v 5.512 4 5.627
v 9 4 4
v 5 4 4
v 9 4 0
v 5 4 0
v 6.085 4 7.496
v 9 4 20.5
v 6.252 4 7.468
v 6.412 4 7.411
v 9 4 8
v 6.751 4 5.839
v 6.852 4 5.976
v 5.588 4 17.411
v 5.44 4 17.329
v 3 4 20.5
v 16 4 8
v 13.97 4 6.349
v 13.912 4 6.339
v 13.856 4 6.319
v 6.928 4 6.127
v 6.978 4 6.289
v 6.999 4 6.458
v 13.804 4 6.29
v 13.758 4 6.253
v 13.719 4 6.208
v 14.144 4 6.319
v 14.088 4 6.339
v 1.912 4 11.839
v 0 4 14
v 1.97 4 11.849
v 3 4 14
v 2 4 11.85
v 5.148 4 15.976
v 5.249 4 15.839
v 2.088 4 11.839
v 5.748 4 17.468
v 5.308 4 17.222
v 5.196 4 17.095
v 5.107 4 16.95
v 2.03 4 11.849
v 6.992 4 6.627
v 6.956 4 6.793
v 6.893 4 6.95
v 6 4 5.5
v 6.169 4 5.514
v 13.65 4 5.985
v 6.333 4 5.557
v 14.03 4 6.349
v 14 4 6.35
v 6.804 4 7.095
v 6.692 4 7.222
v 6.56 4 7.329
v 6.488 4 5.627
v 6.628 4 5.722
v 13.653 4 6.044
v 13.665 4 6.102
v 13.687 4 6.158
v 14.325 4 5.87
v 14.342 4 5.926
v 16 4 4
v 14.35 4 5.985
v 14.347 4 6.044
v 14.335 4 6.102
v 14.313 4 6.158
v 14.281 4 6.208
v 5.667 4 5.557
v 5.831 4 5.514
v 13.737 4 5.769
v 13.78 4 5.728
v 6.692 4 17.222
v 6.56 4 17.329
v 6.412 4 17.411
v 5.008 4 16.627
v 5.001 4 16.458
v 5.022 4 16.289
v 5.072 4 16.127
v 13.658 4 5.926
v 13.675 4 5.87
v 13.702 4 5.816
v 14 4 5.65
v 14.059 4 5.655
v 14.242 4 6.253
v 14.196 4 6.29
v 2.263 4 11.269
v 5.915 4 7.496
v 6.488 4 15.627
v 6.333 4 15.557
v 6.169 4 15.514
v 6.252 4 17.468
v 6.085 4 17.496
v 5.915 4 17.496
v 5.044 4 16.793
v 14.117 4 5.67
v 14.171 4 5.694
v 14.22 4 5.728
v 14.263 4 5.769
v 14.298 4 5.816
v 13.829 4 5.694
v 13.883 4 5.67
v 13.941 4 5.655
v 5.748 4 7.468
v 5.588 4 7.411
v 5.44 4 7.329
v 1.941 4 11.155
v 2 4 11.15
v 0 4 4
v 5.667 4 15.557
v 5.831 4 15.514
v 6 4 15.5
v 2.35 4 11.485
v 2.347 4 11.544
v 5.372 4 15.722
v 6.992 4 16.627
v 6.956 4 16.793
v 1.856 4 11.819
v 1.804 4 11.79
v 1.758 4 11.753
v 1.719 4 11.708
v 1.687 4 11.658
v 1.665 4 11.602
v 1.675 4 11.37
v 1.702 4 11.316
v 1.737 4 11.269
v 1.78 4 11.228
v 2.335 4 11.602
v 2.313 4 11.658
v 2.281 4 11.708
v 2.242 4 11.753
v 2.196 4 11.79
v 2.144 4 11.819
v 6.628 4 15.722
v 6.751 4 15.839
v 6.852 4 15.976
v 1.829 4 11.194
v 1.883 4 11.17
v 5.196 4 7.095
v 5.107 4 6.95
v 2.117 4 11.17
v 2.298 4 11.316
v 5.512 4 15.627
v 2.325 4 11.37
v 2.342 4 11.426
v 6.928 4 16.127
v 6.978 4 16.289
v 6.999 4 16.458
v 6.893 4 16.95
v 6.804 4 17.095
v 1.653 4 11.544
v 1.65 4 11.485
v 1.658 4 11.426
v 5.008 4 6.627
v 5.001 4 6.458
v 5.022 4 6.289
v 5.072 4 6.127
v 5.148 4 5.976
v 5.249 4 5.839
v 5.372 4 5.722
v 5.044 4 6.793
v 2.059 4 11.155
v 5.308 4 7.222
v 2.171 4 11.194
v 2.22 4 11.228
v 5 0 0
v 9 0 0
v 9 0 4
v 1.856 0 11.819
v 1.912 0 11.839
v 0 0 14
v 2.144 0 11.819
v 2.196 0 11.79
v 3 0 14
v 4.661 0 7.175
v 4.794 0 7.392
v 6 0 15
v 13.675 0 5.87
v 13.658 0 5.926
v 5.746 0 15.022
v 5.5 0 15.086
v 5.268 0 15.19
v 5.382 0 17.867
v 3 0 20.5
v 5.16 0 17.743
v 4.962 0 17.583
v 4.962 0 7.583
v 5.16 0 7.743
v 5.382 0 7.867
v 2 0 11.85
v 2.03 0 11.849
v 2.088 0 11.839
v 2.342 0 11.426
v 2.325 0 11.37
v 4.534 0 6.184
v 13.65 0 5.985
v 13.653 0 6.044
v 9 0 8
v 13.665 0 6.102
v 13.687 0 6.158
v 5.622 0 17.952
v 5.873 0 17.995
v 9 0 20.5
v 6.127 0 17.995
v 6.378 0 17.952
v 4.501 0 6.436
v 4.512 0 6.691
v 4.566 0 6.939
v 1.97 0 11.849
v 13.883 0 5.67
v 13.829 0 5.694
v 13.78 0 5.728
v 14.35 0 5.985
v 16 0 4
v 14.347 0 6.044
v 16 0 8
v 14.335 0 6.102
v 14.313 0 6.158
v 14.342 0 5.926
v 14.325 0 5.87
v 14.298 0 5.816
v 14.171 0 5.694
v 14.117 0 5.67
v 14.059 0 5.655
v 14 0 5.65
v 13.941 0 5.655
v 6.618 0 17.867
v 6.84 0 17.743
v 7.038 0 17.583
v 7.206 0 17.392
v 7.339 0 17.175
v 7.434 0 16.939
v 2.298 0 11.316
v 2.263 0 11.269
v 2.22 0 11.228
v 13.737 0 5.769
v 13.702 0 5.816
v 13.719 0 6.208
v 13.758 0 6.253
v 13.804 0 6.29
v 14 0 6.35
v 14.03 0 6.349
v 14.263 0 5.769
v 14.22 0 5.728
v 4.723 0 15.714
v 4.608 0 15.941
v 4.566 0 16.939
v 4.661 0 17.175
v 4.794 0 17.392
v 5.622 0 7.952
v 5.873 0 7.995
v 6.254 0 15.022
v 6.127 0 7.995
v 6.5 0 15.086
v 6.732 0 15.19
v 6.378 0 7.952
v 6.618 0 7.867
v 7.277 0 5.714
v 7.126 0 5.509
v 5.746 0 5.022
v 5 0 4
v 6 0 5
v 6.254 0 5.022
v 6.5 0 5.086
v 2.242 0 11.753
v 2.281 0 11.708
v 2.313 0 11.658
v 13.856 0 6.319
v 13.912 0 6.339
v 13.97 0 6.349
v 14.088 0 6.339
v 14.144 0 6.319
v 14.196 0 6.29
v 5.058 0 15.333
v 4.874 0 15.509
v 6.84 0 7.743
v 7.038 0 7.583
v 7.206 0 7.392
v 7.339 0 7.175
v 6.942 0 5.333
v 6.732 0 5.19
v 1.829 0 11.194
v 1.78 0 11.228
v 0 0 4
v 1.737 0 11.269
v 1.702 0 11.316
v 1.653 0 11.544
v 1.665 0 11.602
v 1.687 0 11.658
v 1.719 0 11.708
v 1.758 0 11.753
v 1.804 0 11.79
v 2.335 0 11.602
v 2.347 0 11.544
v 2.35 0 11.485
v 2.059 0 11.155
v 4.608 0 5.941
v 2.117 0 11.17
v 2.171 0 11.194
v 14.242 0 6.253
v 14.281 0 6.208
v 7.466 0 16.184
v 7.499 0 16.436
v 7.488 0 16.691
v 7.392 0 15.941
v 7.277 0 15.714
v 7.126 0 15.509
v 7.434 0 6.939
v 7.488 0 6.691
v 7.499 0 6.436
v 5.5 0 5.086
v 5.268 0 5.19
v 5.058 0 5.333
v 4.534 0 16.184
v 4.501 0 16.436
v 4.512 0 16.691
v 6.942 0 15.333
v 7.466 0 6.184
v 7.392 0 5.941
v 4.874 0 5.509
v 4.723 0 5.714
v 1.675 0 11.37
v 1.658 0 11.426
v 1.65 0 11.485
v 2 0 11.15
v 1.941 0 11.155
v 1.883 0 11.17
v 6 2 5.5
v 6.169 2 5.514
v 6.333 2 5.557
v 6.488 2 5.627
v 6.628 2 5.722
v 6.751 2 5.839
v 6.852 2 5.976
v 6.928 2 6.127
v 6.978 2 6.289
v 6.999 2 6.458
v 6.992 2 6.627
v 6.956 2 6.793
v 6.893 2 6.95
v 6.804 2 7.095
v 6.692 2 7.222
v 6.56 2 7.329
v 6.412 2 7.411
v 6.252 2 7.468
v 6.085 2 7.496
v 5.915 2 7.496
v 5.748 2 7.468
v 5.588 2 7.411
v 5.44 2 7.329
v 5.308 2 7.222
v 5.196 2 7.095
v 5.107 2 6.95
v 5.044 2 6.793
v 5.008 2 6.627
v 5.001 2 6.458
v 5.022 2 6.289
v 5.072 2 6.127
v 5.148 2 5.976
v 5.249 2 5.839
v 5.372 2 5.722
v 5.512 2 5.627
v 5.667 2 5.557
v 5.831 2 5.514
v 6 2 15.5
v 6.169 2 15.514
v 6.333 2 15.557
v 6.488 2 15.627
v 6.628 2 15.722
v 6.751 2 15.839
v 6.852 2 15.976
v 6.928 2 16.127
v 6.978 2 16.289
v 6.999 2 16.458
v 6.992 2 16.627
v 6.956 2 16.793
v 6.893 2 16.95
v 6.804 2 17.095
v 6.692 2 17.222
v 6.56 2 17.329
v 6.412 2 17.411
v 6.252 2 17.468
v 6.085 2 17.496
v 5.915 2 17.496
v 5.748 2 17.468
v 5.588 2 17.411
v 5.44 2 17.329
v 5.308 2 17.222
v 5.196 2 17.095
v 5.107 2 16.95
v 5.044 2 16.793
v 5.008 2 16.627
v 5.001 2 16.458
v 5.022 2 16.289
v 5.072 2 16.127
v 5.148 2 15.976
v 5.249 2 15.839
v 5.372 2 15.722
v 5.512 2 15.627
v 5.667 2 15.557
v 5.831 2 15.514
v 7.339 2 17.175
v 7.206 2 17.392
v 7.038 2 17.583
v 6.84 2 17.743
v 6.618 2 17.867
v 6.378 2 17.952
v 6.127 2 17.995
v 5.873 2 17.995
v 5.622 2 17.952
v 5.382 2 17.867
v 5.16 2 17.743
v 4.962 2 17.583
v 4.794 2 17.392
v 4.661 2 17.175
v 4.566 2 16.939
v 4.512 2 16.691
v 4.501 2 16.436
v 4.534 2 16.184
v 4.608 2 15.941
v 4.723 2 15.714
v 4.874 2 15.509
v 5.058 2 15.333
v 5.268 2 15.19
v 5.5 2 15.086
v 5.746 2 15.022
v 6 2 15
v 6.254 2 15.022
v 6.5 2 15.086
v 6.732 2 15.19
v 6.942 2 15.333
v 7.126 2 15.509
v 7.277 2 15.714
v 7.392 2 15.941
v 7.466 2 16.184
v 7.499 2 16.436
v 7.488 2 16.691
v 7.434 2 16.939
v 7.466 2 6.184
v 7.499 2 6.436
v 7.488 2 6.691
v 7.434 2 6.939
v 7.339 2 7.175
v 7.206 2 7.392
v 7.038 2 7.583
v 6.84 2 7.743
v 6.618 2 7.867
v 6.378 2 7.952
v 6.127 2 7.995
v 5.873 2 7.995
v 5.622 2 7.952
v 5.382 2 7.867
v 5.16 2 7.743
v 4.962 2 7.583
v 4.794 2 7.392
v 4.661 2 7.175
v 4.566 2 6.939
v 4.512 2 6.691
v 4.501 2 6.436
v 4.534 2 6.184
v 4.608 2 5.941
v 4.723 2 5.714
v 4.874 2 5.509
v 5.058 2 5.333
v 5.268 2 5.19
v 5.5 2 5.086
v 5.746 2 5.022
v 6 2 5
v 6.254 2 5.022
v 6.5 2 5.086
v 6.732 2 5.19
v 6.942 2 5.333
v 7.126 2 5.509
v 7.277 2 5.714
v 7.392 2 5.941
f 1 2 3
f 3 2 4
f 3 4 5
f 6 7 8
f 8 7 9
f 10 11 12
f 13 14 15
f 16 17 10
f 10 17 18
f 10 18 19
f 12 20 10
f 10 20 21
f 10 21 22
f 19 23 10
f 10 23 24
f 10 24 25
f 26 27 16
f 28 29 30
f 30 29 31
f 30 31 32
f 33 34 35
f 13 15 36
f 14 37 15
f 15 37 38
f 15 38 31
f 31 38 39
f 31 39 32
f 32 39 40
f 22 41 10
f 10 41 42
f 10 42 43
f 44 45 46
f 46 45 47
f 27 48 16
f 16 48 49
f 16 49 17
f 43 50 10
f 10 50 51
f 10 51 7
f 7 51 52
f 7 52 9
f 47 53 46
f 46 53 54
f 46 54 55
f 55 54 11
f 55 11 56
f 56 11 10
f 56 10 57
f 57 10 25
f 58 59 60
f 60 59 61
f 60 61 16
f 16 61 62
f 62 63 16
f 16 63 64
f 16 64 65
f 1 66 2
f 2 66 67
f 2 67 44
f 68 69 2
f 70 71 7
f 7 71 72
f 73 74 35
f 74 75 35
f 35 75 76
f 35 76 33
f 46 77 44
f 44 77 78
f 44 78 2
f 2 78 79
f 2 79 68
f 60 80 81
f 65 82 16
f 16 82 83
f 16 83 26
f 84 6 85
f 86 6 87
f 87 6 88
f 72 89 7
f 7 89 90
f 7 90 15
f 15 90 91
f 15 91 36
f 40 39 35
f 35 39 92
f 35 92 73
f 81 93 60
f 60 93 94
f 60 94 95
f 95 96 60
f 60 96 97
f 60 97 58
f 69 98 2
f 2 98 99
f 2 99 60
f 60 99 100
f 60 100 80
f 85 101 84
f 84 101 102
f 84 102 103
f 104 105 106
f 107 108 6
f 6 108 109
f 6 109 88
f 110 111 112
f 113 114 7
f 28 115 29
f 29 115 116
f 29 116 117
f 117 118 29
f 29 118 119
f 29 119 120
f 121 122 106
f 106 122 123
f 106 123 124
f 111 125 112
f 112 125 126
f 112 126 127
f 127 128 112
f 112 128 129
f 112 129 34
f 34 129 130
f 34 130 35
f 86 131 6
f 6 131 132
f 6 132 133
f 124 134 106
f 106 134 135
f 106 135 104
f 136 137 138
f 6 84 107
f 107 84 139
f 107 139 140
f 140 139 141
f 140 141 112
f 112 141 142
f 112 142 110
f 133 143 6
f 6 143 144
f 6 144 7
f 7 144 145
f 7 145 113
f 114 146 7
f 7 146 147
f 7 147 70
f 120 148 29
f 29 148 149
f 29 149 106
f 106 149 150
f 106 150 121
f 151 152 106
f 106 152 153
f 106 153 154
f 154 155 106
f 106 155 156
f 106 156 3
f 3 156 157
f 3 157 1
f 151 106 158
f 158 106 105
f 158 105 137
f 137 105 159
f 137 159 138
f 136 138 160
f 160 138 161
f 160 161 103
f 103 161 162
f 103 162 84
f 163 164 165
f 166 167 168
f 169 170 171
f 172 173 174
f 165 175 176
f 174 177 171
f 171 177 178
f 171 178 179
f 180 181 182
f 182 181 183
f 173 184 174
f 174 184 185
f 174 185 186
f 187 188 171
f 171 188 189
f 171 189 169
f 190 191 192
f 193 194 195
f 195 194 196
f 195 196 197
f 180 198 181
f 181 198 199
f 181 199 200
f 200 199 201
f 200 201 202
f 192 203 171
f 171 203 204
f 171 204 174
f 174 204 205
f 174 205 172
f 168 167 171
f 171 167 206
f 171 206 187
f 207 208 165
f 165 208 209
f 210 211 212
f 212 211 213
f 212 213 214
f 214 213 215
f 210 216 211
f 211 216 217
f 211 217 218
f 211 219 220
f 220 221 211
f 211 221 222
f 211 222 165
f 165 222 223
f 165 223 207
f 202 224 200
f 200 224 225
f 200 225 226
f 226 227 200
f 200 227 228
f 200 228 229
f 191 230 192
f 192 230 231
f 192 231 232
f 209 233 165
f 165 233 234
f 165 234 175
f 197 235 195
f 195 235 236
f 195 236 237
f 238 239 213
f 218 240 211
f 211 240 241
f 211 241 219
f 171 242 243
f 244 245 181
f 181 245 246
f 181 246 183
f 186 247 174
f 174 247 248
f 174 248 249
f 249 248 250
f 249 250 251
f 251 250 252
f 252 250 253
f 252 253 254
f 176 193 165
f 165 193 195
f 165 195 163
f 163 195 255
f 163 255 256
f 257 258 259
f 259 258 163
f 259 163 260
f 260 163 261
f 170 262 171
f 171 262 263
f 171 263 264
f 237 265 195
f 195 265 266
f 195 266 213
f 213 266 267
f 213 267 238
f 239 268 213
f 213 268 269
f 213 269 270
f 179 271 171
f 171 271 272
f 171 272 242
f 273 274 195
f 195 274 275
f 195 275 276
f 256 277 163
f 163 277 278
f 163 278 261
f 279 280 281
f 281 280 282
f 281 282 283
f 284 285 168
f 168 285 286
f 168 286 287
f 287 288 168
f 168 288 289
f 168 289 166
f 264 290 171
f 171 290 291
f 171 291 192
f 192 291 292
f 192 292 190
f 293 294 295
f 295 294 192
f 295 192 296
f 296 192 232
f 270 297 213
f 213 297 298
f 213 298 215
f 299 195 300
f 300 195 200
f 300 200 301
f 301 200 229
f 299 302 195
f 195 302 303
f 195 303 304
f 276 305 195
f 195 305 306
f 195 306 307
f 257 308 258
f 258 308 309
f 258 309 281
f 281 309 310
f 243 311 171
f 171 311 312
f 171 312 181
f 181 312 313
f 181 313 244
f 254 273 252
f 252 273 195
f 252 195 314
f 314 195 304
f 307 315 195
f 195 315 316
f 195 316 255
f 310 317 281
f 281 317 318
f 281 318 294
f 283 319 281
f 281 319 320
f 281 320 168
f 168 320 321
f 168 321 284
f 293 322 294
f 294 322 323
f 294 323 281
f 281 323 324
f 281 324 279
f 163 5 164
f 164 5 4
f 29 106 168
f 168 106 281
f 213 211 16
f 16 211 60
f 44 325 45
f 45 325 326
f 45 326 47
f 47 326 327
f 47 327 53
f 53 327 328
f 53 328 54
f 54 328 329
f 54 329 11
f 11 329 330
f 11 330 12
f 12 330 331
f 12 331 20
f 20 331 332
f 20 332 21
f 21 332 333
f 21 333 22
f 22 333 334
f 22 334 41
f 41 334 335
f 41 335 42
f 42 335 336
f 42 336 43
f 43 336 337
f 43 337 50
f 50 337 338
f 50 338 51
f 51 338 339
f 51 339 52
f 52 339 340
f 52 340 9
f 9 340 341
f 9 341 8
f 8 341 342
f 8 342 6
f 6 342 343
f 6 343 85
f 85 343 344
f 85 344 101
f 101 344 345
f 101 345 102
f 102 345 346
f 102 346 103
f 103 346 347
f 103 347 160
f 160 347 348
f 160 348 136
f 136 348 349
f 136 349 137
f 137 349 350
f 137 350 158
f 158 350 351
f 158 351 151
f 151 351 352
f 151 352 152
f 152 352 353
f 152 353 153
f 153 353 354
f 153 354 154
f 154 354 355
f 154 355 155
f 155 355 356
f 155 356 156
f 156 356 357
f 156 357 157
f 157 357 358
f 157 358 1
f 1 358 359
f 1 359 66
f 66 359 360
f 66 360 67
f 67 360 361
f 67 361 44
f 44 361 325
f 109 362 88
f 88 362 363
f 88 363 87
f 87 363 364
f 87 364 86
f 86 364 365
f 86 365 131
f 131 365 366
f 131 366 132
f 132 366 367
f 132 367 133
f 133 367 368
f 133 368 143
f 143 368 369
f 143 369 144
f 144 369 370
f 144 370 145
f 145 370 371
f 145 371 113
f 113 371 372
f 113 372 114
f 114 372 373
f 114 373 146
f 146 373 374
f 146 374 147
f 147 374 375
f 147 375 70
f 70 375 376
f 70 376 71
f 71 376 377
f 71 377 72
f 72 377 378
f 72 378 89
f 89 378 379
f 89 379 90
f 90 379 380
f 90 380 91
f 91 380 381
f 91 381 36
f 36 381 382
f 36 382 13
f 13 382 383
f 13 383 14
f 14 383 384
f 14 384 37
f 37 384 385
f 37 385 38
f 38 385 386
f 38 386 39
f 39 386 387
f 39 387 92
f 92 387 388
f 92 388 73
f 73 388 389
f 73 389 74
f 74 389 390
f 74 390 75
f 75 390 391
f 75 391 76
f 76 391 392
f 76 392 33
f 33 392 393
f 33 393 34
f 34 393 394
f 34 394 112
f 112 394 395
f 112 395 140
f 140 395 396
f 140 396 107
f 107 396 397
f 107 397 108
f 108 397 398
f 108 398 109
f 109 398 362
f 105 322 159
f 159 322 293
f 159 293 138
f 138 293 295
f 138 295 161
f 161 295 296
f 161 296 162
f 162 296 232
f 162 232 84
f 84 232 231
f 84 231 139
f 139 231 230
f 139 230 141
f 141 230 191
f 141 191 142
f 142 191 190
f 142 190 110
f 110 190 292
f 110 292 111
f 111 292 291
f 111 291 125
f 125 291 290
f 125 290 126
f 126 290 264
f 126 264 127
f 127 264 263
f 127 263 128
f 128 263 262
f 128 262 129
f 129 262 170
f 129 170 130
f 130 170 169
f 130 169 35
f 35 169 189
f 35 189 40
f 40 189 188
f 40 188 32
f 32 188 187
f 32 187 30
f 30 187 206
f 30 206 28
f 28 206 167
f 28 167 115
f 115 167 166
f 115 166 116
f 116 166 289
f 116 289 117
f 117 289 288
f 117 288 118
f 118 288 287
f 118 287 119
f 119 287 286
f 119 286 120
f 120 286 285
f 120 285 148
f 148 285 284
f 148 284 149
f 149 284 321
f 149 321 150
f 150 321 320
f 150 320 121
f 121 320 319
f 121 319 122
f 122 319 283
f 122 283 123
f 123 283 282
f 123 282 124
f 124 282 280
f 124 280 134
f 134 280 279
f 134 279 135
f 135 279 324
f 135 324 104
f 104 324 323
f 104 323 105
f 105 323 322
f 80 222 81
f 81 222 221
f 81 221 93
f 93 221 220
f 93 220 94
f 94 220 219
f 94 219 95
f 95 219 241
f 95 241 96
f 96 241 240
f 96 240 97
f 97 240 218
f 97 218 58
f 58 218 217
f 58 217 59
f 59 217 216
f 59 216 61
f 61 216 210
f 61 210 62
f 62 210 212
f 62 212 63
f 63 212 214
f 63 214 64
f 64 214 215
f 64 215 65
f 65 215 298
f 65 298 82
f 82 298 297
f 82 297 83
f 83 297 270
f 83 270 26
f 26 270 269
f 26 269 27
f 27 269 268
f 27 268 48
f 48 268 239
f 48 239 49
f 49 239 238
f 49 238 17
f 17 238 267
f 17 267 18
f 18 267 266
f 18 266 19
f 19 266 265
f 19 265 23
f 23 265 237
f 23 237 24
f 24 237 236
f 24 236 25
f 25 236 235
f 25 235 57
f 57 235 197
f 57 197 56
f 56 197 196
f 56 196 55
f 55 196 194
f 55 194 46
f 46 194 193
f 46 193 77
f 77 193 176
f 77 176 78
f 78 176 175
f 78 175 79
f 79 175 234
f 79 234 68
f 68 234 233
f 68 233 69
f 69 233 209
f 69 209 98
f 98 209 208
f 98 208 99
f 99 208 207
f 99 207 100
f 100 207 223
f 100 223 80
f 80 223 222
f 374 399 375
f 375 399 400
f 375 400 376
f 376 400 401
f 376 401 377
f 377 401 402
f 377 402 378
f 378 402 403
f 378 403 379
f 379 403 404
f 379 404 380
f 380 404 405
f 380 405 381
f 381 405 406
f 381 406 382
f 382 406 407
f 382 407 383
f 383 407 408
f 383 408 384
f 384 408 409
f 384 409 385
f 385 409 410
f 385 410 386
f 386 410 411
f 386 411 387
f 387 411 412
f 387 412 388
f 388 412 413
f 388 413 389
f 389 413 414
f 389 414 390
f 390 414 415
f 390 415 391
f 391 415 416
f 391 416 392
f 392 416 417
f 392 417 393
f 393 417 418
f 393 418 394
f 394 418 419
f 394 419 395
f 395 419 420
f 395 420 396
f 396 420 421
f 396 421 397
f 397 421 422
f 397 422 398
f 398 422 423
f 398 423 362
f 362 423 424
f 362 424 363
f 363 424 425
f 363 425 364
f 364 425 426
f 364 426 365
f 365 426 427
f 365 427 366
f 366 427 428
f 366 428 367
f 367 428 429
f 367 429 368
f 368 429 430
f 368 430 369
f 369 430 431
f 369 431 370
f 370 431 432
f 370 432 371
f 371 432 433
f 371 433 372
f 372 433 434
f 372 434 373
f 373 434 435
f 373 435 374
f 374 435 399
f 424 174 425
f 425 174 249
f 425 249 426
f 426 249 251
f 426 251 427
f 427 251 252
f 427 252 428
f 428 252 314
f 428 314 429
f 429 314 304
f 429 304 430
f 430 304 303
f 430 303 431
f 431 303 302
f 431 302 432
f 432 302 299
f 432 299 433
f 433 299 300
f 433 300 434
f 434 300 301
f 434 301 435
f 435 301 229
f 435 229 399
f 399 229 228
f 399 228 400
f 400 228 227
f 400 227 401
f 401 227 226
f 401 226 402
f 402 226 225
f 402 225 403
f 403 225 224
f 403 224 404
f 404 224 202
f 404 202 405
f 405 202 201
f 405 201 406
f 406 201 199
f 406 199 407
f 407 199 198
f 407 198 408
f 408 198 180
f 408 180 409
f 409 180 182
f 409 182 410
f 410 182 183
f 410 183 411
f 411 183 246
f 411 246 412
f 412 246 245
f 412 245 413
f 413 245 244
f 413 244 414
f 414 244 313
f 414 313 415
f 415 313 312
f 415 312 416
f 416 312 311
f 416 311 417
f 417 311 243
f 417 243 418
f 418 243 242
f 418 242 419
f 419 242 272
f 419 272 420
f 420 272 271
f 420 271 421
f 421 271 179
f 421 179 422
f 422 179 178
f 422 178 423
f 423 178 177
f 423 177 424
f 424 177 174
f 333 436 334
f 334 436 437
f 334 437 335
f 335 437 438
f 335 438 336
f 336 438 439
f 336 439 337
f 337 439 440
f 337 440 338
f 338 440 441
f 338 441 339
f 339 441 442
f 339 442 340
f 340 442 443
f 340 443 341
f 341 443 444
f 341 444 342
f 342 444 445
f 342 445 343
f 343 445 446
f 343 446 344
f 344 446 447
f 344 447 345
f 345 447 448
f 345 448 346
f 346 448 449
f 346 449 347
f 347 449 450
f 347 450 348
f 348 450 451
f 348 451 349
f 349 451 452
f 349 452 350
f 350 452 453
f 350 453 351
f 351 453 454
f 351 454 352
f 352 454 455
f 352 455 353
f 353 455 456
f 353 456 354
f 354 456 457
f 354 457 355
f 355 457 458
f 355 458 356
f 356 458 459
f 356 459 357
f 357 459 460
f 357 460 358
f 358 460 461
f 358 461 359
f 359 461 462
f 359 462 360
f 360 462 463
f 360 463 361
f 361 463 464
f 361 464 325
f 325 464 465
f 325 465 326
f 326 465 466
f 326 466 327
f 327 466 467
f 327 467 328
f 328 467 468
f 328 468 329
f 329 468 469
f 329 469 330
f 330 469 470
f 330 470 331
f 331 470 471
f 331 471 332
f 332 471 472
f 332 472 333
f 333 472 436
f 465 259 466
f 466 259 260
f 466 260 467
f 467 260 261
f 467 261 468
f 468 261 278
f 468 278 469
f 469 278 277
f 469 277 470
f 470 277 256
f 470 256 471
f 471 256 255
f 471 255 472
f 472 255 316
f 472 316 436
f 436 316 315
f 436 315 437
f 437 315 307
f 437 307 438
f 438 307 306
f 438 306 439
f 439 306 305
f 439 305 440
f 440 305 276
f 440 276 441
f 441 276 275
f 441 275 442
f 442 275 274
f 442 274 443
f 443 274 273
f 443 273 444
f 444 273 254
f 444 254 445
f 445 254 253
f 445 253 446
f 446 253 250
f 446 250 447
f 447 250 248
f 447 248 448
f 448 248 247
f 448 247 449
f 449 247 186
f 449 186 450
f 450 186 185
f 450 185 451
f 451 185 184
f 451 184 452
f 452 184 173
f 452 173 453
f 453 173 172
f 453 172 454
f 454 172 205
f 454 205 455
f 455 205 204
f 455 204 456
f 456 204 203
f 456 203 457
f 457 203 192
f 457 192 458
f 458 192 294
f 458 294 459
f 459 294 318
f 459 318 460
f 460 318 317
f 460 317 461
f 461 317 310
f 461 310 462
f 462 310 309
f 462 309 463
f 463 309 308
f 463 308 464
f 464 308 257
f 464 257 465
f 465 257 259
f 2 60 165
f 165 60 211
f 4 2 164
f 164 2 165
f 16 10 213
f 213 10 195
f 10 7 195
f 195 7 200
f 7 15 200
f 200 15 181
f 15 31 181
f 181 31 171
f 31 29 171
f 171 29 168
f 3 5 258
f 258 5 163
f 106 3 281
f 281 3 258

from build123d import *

# Parameters (mm, degrees)
SKETCH_1_W          = 16
SKETCH_1_H          = 23
SKETCH_1_R          = 0.35
EXTRUDE_1_DEPTH     = 4
SKETCH_2_R          = 1
CUT_EXTRUDE_1_DEPTH = 29.301943396
SKETCH_3_R          = 1.5
CUT_EXTRUDE_2_DEPTH = 2
SKETCH_4_W          = 6
SKETCH_4_H          = 2.5
SKETCH_4_W_2        = 7
SKETCH_4_H_2        = 4
SKETCH_4_W_3        = 5
CUT_EXTRUDE_3_DEPTH = 29.301943396


with BuildPart() as part:
    # 草图1 → 凸台-拉伸1 (new body)
    with BuildSketch(Plane(origin=(0, 0, 0), x_dir=(1, 0, 0), z_dir=(0, 1, 0))):
        with Locations((8, -11.5)):
            Rectangle(SKETCH_1_W, SKETCH_1_H)
        with Locations(Location((14, -6, 0), (0, 0, 270))):
            Circle(SKETCH_1_R, mode=Mode.SUBTRACT)
        with Locations(Location((2, -11.5, 0), (0, 0, 270))):
            Circle(SKETCH_1_R, mode=Mode.SUBTRACT)
    extrude(amount=EXTRUDE_1_DEPTH)

    # 草图2 → 切除-拉伸1 (cut, through all)
    with BuildSketch(Plane.XZ):
        with Locations(Location((6, 16.5, 0), (0, 0, 270))):
            Circle(SKETCH_2_R)
        with Locations(Location((6, 6.5, 0), (0, 0, 270))):
            Circle(SKETCH_2_R)
    extrude(amount=-CUT_EXTRUDE_1_DEPTH, mode=Mode.SUBTRACT)

    # 草图3 → 切除-拉伸2 (cut)
    with BuildSketch(Plane.XZ):
        with Locations(Location((6, 16.5, 0), (0, 0, 270))):
            Circle(SKETCH_3_R)
        with Locations(Location((6, 6.5, 0), (0, 0, 270))):
            Circle(SKETCH_3_R)
    extrude(amount=-CUT_EXTRUDE_2_DEPTH, mode=Mode.SUBTRACT)

    # 草图4 → 切除-拉伸3 (cut, through all)
    with BuildSketch(Plane.XZ):
        with Locations((6, 21.75)):
            Rectangle(SKETCH_4_W, SKETCH_4_H)
        Polygon((3, 23), (0, 23), (0, 14), (3, 14), (3, 20.5), align=None)
        Polygon((16, 23), (9, 23), (9, 20.5), (9, 8), (16, 8), align=None)
        with Locations((12.5, 2)):
            Rectangle(SKETCH_4_W_2, SKETCH_4_H_2)
        with Locations((2.5, 2)):
            Rectangle(SKETCH_4_W_3, SKETCH_4_H_2)
    extrude(amount=-CUT_EXTRUDE_3_DEPTH, mode=Mode.SUBTRACT)


solid = part.part
